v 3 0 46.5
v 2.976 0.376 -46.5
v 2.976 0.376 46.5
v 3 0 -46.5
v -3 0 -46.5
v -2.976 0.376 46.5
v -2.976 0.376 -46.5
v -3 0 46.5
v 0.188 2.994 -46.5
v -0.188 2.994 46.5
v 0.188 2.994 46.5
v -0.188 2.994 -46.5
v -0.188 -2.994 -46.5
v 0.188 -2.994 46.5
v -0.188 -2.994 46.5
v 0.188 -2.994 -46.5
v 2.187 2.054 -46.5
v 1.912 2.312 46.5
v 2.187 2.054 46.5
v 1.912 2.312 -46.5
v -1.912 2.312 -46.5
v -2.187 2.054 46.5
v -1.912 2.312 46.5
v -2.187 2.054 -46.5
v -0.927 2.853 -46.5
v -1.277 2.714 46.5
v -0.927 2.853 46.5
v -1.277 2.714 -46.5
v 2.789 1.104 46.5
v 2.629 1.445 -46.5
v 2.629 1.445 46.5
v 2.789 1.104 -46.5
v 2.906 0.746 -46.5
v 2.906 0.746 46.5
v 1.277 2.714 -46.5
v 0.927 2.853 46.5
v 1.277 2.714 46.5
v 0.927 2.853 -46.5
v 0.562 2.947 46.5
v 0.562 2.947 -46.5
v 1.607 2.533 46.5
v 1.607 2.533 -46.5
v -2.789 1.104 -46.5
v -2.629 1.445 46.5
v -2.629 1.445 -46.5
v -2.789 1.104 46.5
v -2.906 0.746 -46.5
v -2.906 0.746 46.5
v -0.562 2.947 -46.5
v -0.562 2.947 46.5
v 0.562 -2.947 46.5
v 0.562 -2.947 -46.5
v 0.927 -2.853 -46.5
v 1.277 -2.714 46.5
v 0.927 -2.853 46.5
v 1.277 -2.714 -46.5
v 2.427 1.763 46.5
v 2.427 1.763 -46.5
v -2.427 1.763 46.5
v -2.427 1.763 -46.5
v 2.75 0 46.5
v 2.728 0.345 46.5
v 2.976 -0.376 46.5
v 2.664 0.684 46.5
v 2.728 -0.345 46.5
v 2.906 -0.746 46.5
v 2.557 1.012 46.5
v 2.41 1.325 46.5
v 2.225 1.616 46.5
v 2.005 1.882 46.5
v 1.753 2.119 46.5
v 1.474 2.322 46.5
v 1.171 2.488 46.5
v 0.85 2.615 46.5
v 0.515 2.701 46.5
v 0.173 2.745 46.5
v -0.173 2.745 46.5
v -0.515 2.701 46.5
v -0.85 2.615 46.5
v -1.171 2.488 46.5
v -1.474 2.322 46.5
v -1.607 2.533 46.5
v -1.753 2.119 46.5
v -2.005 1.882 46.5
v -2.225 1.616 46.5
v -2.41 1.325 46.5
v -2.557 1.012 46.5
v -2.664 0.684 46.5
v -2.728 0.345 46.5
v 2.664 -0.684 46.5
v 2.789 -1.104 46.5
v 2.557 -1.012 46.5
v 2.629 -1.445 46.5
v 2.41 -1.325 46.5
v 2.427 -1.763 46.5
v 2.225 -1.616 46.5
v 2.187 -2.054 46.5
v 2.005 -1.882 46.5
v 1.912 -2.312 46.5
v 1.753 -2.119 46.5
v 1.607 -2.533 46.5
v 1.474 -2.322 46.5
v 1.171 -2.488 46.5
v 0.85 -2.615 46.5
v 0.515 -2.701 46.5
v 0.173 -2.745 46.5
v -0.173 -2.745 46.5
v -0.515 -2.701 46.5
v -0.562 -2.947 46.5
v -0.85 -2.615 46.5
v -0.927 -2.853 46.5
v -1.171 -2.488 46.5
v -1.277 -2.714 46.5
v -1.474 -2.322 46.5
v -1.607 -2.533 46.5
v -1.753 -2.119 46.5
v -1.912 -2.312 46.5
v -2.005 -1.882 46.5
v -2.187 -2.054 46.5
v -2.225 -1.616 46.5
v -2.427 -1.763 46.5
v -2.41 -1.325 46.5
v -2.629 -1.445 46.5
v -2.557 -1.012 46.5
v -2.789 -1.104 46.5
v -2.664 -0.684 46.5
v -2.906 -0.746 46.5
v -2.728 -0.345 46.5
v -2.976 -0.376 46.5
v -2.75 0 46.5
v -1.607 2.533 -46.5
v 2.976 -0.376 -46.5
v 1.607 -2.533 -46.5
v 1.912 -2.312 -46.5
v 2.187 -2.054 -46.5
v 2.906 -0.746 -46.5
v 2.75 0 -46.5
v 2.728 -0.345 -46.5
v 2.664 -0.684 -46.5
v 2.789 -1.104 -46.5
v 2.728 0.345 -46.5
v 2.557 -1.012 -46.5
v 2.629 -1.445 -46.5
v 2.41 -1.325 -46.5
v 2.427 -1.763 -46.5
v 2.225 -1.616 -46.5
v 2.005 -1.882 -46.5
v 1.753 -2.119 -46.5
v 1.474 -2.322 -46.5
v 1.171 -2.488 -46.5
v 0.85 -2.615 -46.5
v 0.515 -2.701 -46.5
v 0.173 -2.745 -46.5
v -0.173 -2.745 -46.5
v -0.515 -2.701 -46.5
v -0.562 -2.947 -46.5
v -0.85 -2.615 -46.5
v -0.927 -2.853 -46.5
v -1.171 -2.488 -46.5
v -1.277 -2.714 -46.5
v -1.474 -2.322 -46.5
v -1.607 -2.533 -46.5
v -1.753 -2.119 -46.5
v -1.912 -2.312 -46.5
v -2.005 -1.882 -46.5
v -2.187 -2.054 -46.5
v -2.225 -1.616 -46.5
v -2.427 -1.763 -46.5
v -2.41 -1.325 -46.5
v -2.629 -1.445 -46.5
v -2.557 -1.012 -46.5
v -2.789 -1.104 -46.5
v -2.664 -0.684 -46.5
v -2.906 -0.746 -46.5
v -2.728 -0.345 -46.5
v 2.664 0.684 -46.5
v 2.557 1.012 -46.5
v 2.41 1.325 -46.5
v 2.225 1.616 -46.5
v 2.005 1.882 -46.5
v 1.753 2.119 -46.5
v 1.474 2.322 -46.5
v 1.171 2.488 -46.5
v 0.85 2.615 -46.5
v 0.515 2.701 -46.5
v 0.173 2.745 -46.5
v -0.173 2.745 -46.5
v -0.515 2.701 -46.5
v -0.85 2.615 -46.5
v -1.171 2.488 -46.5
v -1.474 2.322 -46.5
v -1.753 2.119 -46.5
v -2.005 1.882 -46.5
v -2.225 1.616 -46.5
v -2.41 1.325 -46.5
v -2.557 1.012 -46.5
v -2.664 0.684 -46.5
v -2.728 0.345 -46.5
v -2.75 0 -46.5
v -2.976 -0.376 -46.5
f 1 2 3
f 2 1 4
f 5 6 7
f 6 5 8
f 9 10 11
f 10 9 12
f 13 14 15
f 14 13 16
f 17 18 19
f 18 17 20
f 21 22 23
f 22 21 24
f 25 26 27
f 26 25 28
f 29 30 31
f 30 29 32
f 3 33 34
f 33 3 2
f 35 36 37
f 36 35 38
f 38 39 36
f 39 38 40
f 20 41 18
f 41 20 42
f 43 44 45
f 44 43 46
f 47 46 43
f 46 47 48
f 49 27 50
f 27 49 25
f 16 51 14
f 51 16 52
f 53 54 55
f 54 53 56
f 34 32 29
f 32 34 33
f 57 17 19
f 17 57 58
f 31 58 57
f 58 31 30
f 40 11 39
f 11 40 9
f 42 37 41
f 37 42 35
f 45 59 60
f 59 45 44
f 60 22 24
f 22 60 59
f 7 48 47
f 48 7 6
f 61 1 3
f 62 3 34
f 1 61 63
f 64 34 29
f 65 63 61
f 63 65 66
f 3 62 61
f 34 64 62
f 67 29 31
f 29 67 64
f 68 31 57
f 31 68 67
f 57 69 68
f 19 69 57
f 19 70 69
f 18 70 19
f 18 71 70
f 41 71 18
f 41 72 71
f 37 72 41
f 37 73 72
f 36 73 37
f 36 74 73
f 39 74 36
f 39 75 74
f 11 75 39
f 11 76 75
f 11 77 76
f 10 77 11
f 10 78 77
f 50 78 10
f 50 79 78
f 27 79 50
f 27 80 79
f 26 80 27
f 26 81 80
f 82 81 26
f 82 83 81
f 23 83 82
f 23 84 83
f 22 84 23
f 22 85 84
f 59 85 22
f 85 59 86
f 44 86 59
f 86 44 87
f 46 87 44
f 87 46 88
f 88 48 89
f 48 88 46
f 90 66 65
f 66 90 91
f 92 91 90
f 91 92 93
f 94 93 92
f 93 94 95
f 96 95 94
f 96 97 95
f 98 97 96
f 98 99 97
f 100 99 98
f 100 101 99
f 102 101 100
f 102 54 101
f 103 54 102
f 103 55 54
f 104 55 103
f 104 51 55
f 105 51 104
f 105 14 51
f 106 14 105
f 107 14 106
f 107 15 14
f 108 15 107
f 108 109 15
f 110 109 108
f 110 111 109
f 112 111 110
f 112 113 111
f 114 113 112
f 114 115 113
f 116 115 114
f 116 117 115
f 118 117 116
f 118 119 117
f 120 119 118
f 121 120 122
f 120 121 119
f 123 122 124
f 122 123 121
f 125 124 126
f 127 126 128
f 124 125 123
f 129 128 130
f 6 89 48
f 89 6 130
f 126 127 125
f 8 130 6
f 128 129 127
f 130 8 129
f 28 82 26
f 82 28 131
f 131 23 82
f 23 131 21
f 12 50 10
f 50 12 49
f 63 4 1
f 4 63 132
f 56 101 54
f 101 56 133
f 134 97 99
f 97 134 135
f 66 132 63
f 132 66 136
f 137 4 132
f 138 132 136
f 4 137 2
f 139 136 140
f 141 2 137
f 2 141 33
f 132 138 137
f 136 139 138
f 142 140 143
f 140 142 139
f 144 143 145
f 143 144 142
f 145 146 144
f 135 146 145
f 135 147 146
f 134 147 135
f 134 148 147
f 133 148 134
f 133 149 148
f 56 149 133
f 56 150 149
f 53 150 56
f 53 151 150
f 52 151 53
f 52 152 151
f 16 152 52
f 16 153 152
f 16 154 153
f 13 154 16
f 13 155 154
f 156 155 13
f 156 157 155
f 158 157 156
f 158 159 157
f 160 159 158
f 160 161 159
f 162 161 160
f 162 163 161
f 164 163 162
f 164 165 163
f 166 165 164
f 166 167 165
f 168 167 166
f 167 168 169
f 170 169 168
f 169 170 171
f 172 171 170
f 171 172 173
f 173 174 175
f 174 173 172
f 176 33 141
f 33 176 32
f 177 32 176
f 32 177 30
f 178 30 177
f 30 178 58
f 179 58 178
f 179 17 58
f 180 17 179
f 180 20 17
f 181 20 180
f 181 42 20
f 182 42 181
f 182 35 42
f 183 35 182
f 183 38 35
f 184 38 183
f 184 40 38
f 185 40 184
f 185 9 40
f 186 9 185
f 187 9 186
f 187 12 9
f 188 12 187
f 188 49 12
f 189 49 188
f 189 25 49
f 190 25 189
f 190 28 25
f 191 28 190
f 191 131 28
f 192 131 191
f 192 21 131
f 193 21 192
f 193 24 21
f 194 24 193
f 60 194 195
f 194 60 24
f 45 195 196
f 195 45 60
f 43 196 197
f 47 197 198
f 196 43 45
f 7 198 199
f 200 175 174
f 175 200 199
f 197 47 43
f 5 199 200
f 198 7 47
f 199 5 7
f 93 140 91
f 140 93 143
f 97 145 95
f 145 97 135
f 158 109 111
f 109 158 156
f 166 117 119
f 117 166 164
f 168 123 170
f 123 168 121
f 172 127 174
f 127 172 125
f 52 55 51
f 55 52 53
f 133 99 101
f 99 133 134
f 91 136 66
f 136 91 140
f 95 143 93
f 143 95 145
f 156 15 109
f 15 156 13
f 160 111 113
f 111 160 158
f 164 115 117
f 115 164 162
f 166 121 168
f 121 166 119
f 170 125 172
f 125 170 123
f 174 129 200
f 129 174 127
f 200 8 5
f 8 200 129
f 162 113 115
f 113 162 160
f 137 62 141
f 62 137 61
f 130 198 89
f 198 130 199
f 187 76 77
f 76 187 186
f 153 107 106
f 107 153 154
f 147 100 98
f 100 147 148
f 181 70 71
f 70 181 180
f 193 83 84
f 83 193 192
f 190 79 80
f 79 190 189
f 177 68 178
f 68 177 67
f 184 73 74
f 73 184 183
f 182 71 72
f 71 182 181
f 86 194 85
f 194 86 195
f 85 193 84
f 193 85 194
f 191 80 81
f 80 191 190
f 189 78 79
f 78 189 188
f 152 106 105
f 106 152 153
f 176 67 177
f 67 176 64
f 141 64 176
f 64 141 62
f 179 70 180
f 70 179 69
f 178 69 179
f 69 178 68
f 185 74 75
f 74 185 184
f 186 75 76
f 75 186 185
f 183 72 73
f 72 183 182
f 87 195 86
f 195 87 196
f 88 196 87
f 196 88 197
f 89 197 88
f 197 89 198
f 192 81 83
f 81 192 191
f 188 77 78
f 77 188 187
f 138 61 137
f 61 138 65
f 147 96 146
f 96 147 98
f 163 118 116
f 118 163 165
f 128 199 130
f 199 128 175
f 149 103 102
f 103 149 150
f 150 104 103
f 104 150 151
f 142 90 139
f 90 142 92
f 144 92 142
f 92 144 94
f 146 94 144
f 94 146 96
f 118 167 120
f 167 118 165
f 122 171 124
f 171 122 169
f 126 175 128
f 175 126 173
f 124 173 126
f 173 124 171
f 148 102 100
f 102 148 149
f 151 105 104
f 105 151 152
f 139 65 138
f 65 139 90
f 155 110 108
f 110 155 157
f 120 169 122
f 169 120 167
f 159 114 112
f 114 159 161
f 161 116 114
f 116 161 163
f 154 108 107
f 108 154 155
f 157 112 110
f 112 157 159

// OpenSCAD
$fn = 50;


difference() {
	union() {
		translate(v = [0, 0, -46.5000000000]) {
			cylinder(h = 93, r = 3.0000000000);
		}
	}
	union() {
		translate(v = [0, 0, -100.0000000000]) {
			cylinder(h = 200, r = 2.7500000000);
		}
	}
}
